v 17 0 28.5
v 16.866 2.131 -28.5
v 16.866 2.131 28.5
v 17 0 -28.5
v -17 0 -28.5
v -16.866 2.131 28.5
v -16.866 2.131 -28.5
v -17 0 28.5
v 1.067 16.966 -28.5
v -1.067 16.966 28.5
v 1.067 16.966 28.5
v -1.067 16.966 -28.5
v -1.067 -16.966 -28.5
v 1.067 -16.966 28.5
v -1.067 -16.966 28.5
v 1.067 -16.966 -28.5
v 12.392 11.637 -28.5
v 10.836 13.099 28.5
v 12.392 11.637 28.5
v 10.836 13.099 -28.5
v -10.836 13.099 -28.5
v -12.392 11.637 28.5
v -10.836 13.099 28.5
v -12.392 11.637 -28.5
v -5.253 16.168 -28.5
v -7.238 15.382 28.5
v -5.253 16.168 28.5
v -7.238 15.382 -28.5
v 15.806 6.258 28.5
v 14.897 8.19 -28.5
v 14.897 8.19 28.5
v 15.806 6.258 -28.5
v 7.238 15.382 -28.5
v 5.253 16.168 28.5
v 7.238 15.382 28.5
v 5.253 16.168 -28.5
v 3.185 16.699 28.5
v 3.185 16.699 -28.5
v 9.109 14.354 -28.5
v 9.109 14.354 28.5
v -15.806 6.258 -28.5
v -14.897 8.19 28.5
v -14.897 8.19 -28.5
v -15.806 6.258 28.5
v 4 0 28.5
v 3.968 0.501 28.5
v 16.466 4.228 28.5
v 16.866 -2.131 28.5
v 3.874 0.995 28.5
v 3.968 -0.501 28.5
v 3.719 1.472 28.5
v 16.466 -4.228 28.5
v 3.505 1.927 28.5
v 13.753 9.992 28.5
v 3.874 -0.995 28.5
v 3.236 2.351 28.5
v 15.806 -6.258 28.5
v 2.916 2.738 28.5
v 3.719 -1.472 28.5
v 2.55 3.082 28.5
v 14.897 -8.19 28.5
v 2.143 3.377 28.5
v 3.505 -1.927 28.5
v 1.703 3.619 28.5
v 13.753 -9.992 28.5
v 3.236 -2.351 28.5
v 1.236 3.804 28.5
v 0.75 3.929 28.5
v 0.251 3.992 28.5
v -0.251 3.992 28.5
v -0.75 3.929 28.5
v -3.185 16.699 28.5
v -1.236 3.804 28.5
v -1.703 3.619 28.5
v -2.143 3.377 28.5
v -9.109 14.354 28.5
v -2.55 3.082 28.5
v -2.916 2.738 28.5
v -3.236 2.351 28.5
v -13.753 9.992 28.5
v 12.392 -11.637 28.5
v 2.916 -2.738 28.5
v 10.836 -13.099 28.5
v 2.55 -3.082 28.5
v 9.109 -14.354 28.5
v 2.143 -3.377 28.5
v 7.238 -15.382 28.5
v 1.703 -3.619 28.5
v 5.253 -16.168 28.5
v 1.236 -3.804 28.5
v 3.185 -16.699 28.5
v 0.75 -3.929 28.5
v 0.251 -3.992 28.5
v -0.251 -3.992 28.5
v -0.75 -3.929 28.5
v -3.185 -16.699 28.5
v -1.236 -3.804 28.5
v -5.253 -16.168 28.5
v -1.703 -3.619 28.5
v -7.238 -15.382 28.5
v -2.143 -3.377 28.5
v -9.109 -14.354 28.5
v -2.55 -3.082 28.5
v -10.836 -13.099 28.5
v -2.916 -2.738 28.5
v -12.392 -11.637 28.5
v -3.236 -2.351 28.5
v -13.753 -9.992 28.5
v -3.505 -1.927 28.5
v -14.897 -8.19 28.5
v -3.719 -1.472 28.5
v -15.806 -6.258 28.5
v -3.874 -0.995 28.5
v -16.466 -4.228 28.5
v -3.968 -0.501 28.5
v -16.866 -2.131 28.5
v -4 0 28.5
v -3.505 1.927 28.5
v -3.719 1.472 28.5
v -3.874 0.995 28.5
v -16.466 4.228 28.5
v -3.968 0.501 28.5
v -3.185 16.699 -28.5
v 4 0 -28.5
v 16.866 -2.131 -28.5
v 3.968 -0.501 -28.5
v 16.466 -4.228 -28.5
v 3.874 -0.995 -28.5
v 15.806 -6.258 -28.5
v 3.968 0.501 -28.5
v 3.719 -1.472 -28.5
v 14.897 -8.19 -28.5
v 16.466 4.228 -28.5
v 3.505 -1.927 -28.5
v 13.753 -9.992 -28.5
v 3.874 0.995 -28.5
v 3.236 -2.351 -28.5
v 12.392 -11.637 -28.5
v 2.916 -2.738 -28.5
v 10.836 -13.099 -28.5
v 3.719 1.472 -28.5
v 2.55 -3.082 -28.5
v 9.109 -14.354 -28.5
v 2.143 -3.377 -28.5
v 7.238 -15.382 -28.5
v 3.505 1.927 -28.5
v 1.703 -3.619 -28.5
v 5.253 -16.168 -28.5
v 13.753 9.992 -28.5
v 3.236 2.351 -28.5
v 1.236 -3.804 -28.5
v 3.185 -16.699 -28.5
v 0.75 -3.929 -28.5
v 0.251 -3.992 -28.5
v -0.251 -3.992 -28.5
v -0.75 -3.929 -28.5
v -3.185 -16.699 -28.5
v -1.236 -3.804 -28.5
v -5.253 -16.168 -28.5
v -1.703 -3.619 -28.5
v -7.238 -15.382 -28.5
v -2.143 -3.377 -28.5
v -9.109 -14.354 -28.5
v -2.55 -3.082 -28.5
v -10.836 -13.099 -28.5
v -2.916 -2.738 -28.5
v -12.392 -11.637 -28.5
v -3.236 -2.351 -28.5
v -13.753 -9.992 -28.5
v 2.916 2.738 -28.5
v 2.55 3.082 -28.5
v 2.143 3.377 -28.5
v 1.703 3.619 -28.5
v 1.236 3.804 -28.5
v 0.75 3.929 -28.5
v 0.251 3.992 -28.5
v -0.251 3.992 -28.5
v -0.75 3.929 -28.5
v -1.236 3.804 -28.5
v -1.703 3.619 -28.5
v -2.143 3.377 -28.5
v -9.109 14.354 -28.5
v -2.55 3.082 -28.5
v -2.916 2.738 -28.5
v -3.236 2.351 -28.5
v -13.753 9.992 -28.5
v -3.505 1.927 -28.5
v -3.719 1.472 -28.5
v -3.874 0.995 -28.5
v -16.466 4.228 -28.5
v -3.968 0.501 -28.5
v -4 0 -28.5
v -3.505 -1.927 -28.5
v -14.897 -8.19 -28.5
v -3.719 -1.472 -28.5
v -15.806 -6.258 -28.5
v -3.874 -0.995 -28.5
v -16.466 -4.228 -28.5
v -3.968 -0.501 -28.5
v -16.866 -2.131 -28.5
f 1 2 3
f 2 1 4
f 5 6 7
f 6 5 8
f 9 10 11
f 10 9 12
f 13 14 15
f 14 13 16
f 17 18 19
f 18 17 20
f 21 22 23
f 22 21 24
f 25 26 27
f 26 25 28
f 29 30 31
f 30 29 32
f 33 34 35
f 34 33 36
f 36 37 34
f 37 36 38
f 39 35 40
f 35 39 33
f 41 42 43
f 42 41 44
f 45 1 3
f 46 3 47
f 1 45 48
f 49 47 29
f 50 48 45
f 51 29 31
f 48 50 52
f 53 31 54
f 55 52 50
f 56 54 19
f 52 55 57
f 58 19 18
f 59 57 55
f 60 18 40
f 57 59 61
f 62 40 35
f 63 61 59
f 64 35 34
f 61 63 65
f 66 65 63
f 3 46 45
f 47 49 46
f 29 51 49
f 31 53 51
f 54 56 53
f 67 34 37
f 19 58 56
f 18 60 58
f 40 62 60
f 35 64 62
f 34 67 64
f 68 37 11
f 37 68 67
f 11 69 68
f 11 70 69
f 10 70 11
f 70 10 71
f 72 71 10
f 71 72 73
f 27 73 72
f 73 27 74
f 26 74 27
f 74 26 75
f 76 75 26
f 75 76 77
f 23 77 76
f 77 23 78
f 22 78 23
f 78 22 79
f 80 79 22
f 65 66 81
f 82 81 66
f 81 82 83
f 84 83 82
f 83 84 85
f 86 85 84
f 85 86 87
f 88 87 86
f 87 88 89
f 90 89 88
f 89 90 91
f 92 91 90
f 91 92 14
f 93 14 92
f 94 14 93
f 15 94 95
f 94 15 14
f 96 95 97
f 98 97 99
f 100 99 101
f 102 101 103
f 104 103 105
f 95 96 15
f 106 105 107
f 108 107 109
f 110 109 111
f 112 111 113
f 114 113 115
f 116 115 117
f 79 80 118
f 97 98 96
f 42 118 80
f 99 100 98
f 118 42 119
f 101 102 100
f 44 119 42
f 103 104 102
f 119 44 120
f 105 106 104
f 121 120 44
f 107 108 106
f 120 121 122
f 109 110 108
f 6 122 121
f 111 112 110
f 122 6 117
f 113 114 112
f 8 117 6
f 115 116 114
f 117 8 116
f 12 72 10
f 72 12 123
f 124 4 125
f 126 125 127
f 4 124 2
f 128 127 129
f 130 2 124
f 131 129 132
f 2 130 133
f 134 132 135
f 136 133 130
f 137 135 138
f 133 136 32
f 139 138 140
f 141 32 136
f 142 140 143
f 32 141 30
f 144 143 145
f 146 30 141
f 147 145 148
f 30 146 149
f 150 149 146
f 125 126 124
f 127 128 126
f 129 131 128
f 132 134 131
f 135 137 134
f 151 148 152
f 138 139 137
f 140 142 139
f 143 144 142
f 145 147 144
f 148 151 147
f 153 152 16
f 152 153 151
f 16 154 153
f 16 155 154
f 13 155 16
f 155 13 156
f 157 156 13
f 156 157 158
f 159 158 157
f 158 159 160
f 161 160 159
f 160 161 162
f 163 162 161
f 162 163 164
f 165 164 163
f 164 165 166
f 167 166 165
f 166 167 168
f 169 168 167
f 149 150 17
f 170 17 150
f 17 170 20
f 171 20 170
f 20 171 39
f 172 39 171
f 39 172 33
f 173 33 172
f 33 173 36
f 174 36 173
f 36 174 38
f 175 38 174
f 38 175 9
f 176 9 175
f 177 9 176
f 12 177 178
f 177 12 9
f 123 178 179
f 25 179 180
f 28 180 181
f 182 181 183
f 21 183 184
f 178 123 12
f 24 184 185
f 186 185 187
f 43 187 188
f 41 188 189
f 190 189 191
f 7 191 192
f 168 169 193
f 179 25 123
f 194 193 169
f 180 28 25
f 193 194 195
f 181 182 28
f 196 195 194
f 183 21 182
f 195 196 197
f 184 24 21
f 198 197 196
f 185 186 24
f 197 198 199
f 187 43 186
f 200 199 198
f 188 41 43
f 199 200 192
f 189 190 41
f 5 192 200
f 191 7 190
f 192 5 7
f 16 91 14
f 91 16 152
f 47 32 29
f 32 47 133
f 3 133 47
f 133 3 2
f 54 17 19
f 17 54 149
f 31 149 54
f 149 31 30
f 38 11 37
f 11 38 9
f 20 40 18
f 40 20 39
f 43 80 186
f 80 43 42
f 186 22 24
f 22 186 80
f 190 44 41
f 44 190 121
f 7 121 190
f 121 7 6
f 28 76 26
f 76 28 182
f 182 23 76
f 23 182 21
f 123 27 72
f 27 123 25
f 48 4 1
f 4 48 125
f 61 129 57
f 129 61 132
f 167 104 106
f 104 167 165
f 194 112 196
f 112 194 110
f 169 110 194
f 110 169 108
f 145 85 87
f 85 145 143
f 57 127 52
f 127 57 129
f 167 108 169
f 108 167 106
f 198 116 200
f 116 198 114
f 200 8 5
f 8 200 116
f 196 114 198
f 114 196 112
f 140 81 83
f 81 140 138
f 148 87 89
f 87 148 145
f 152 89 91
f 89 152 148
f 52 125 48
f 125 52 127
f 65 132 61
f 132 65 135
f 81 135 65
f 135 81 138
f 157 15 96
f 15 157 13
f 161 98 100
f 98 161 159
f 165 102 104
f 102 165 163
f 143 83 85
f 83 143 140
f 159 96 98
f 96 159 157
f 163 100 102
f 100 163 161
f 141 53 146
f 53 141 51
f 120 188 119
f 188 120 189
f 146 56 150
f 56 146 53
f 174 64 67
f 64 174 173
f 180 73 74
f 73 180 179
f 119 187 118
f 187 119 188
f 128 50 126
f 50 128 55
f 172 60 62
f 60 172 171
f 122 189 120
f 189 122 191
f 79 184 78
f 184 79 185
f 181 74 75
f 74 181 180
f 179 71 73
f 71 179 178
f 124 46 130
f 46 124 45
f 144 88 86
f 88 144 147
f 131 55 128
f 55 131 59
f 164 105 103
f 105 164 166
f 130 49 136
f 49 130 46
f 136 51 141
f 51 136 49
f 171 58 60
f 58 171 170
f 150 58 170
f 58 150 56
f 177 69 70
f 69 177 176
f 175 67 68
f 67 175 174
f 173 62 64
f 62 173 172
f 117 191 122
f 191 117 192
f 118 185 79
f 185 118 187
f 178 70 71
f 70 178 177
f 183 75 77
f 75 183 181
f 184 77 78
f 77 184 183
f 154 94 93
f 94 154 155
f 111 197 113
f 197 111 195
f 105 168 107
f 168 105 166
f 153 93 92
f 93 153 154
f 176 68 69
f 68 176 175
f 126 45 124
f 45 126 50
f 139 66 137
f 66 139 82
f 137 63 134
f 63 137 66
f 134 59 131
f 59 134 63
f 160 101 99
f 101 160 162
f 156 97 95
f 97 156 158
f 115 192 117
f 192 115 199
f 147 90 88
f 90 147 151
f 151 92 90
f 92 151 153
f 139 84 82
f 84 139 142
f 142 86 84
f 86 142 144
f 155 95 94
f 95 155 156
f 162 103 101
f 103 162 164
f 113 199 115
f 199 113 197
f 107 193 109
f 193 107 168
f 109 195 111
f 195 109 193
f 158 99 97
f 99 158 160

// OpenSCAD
$fn = 50;


difference() {
	union() {
		translate(v = [0, 0, -28.5000000000]) {
			cylinder(h = 57, r = 17.0000000000);
		}
	}
	union() {
		translate(v = [0, 0, -100.0000000000]) {
			cylinder(h = 200, r = 4);
		}
	}
}
